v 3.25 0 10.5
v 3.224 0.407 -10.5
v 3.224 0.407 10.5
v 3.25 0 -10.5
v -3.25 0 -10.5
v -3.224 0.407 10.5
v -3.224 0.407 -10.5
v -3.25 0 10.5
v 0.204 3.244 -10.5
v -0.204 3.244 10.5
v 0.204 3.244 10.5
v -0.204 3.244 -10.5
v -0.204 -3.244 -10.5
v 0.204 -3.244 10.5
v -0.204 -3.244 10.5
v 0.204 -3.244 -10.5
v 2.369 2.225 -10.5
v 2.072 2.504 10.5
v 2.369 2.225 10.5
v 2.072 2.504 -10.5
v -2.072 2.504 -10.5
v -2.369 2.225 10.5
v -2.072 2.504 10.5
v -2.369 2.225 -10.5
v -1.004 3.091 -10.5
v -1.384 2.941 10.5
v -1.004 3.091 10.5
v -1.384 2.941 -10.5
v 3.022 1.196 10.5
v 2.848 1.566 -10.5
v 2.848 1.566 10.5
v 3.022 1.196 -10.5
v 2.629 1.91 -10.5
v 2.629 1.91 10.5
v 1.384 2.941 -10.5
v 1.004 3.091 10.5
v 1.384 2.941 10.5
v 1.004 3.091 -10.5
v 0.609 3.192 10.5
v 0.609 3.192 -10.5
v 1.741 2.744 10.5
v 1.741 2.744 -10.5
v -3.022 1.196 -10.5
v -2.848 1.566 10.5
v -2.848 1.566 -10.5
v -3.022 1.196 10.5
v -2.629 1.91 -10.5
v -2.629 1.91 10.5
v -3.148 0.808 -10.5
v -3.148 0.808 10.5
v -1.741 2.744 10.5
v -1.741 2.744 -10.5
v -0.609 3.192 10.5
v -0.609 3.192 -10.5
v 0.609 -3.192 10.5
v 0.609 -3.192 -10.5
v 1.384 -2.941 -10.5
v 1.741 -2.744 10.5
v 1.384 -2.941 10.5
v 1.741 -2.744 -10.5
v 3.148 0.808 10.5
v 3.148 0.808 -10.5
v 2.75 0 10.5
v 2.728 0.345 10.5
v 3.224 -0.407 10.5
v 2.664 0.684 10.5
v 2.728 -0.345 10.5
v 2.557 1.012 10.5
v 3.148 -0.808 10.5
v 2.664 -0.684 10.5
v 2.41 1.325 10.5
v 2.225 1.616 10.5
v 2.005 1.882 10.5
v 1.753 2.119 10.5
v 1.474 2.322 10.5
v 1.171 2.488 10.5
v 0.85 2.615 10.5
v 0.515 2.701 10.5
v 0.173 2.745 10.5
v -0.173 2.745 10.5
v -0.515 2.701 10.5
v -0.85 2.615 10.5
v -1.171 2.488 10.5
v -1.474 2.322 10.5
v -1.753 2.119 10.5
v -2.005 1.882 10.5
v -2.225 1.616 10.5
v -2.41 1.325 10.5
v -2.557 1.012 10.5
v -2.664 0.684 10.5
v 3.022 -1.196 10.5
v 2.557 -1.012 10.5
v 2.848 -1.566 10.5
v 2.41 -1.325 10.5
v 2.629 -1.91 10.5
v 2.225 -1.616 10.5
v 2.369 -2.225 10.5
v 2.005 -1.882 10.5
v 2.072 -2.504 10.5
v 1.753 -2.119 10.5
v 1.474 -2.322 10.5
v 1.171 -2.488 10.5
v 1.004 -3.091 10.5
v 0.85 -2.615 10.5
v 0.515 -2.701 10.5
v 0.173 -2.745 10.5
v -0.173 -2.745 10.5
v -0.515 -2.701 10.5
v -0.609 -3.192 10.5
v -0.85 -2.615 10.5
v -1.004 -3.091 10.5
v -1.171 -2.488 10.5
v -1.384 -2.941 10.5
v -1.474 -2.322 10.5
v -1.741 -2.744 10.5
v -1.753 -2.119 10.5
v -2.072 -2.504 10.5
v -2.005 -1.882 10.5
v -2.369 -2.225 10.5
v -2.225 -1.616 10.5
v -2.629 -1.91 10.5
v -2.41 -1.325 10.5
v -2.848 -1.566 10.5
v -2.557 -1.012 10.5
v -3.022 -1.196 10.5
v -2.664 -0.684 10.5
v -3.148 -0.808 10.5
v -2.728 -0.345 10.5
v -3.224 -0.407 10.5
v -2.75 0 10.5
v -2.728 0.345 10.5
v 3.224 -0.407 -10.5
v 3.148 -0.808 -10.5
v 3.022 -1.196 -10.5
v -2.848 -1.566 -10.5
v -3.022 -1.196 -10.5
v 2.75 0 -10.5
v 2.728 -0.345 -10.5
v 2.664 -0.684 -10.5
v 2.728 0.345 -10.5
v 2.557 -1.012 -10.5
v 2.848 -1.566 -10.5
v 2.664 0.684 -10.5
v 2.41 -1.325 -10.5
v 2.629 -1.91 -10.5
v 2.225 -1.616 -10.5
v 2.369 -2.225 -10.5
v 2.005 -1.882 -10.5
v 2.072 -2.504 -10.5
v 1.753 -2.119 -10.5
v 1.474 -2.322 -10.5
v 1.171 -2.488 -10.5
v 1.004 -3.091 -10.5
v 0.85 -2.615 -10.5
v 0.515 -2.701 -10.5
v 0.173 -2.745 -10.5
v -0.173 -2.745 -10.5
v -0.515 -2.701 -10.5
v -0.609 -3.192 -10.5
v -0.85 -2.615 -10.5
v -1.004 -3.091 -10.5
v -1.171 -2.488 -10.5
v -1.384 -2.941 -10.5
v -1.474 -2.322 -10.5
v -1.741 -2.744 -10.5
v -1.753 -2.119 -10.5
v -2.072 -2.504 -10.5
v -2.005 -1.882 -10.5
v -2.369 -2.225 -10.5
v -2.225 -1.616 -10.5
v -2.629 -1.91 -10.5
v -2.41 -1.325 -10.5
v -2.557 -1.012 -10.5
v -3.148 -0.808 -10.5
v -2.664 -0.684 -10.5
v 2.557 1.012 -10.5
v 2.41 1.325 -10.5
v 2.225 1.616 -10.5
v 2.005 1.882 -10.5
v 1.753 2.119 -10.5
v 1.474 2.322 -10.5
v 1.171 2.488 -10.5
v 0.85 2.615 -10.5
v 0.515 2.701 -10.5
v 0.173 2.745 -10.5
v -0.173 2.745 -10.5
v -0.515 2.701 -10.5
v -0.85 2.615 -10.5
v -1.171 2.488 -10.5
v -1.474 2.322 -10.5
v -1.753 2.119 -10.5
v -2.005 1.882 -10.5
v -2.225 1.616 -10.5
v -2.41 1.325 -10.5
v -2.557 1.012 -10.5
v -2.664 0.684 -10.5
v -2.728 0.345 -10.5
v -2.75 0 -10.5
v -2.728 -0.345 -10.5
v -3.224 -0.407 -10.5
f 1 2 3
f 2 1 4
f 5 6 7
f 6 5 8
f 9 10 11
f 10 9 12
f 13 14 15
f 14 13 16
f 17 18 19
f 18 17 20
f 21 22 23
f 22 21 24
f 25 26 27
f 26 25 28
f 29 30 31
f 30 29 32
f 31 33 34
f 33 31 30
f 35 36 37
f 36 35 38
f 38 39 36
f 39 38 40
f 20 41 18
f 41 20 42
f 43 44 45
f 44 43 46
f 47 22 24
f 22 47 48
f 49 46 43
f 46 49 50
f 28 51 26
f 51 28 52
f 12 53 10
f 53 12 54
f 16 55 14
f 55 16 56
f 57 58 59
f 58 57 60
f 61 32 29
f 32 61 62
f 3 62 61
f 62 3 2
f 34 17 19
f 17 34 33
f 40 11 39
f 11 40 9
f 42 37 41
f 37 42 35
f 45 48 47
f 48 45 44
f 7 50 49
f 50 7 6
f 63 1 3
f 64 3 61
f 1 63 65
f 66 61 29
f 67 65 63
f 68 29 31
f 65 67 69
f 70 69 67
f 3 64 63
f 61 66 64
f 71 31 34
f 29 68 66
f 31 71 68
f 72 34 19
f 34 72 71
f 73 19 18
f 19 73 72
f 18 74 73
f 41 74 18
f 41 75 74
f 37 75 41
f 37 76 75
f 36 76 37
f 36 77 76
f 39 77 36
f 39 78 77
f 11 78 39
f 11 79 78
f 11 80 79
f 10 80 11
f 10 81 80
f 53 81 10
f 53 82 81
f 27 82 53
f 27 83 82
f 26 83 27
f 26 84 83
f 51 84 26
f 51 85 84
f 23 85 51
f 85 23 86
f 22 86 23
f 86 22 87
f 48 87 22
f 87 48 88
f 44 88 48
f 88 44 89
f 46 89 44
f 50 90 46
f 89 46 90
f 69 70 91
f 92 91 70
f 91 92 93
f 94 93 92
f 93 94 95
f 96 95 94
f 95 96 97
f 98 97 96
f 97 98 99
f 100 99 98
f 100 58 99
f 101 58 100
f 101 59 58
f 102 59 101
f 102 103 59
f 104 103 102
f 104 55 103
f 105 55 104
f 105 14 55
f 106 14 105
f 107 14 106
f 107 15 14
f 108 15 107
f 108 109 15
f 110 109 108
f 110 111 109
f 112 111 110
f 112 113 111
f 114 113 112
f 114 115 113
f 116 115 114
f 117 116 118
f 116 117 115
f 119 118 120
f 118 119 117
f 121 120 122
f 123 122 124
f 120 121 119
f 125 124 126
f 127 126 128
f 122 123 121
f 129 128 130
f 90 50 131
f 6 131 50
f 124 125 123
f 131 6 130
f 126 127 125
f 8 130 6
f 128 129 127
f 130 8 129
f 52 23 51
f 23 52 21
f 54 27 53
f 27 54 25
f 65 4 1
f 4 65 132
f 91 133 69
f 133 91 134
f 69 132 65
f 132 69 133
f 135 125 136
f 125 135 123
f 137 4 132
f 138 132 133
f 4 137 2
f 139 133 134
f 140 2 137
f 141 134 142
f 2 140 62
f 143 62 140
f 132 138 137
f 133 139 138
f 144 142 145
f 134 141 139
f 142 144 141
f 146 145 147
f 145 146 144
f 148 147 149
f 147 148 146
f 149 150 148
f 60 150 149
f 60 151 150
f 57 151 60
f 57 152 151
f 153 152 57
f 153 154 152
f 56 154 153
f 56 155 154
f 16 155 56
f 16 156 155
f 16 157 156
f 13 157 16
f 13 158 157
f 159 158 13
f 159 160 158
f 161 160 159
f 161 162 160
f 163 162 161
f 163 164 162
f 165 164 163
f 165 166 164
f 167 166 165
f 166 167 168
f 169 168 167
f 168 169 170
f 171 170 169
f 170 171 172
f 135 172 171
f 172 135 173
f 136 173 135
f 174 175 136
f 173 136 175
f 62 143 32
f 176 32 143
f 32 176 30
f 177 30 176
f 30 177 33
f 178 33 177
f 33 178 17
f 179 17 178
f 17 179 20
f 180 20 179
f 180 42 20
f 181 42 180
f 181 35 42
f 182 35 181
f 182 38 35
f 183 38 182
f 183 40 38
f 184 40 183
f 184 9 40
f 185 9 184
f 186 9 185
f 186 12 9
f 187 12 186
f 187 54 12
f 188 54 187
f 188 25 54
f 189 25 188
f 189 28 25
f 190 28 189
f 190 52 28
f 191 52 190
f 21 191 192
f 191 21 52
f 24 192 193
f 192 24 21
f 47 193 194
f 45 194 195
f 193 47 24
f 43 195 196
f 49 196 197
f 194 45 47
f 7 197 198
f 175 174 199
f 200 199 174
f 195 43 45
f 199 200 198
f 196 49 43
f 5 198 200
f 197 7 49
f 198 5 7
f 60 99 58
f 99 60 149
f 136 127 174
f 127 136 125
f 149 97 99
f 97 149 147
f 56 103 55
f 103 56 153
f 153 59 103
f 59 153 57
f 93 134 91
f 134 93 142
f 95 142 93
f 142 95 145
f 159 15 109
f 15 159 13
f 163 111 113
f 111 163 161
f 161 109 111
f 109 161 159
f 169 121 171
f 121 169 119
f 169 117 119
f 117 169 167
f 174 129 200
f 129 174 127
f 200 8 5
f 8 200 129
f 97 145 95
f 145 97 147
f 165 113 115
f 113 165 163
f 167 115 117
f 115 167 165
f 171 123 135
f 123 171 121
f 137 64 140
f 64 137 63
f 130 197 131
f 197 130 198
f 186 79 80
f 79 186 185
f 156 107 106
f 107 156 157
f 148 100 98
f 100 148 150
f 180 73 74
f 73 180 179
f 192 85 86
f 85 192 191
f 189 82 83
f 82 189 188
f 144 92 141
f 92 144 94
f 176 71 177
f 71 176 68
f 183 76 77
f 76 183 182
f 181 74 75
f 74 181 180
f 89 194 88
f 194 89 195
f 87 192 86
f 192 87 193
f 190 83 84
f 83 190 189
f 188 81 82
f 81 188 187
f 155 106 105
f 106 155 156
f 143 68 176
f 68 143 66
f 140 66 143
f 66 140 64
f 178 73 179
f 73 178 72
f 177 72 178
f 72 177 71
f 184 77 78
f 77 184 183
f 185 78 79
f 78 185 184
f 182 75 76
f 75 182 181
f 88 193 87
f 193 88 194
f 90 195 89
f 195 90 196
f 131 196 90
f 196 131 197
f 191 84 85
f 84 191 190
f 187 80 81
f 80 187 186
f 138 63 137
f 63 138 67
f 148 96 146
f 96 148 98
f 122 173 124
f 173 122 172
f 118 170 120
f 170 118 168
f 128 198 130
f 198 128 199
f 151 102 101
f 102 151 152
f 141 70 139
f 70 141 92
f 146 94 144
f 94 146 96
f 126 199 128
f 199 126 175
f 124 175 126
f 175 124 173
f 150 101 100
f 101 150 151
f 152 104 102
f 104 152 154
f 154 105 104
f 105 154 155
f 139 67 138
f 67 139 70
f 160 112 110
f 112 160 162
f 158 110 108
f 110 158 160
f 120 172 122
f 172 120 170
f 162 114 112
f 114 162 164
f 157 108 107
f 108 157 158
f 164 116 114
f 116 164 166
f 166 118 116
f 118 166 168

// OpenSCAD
$fn = 50;


difference() {
	union() {
		translate(v = [0, 0, -10.5000000000]) {
			cylinder(h = 21, r = 3.2500000000);
		}
	}
	union() {
		translate(v = [0, 0, -100.0000000000]) {
			cylinder(h = 200, r = 2.7500000000);
		}
	}
}
